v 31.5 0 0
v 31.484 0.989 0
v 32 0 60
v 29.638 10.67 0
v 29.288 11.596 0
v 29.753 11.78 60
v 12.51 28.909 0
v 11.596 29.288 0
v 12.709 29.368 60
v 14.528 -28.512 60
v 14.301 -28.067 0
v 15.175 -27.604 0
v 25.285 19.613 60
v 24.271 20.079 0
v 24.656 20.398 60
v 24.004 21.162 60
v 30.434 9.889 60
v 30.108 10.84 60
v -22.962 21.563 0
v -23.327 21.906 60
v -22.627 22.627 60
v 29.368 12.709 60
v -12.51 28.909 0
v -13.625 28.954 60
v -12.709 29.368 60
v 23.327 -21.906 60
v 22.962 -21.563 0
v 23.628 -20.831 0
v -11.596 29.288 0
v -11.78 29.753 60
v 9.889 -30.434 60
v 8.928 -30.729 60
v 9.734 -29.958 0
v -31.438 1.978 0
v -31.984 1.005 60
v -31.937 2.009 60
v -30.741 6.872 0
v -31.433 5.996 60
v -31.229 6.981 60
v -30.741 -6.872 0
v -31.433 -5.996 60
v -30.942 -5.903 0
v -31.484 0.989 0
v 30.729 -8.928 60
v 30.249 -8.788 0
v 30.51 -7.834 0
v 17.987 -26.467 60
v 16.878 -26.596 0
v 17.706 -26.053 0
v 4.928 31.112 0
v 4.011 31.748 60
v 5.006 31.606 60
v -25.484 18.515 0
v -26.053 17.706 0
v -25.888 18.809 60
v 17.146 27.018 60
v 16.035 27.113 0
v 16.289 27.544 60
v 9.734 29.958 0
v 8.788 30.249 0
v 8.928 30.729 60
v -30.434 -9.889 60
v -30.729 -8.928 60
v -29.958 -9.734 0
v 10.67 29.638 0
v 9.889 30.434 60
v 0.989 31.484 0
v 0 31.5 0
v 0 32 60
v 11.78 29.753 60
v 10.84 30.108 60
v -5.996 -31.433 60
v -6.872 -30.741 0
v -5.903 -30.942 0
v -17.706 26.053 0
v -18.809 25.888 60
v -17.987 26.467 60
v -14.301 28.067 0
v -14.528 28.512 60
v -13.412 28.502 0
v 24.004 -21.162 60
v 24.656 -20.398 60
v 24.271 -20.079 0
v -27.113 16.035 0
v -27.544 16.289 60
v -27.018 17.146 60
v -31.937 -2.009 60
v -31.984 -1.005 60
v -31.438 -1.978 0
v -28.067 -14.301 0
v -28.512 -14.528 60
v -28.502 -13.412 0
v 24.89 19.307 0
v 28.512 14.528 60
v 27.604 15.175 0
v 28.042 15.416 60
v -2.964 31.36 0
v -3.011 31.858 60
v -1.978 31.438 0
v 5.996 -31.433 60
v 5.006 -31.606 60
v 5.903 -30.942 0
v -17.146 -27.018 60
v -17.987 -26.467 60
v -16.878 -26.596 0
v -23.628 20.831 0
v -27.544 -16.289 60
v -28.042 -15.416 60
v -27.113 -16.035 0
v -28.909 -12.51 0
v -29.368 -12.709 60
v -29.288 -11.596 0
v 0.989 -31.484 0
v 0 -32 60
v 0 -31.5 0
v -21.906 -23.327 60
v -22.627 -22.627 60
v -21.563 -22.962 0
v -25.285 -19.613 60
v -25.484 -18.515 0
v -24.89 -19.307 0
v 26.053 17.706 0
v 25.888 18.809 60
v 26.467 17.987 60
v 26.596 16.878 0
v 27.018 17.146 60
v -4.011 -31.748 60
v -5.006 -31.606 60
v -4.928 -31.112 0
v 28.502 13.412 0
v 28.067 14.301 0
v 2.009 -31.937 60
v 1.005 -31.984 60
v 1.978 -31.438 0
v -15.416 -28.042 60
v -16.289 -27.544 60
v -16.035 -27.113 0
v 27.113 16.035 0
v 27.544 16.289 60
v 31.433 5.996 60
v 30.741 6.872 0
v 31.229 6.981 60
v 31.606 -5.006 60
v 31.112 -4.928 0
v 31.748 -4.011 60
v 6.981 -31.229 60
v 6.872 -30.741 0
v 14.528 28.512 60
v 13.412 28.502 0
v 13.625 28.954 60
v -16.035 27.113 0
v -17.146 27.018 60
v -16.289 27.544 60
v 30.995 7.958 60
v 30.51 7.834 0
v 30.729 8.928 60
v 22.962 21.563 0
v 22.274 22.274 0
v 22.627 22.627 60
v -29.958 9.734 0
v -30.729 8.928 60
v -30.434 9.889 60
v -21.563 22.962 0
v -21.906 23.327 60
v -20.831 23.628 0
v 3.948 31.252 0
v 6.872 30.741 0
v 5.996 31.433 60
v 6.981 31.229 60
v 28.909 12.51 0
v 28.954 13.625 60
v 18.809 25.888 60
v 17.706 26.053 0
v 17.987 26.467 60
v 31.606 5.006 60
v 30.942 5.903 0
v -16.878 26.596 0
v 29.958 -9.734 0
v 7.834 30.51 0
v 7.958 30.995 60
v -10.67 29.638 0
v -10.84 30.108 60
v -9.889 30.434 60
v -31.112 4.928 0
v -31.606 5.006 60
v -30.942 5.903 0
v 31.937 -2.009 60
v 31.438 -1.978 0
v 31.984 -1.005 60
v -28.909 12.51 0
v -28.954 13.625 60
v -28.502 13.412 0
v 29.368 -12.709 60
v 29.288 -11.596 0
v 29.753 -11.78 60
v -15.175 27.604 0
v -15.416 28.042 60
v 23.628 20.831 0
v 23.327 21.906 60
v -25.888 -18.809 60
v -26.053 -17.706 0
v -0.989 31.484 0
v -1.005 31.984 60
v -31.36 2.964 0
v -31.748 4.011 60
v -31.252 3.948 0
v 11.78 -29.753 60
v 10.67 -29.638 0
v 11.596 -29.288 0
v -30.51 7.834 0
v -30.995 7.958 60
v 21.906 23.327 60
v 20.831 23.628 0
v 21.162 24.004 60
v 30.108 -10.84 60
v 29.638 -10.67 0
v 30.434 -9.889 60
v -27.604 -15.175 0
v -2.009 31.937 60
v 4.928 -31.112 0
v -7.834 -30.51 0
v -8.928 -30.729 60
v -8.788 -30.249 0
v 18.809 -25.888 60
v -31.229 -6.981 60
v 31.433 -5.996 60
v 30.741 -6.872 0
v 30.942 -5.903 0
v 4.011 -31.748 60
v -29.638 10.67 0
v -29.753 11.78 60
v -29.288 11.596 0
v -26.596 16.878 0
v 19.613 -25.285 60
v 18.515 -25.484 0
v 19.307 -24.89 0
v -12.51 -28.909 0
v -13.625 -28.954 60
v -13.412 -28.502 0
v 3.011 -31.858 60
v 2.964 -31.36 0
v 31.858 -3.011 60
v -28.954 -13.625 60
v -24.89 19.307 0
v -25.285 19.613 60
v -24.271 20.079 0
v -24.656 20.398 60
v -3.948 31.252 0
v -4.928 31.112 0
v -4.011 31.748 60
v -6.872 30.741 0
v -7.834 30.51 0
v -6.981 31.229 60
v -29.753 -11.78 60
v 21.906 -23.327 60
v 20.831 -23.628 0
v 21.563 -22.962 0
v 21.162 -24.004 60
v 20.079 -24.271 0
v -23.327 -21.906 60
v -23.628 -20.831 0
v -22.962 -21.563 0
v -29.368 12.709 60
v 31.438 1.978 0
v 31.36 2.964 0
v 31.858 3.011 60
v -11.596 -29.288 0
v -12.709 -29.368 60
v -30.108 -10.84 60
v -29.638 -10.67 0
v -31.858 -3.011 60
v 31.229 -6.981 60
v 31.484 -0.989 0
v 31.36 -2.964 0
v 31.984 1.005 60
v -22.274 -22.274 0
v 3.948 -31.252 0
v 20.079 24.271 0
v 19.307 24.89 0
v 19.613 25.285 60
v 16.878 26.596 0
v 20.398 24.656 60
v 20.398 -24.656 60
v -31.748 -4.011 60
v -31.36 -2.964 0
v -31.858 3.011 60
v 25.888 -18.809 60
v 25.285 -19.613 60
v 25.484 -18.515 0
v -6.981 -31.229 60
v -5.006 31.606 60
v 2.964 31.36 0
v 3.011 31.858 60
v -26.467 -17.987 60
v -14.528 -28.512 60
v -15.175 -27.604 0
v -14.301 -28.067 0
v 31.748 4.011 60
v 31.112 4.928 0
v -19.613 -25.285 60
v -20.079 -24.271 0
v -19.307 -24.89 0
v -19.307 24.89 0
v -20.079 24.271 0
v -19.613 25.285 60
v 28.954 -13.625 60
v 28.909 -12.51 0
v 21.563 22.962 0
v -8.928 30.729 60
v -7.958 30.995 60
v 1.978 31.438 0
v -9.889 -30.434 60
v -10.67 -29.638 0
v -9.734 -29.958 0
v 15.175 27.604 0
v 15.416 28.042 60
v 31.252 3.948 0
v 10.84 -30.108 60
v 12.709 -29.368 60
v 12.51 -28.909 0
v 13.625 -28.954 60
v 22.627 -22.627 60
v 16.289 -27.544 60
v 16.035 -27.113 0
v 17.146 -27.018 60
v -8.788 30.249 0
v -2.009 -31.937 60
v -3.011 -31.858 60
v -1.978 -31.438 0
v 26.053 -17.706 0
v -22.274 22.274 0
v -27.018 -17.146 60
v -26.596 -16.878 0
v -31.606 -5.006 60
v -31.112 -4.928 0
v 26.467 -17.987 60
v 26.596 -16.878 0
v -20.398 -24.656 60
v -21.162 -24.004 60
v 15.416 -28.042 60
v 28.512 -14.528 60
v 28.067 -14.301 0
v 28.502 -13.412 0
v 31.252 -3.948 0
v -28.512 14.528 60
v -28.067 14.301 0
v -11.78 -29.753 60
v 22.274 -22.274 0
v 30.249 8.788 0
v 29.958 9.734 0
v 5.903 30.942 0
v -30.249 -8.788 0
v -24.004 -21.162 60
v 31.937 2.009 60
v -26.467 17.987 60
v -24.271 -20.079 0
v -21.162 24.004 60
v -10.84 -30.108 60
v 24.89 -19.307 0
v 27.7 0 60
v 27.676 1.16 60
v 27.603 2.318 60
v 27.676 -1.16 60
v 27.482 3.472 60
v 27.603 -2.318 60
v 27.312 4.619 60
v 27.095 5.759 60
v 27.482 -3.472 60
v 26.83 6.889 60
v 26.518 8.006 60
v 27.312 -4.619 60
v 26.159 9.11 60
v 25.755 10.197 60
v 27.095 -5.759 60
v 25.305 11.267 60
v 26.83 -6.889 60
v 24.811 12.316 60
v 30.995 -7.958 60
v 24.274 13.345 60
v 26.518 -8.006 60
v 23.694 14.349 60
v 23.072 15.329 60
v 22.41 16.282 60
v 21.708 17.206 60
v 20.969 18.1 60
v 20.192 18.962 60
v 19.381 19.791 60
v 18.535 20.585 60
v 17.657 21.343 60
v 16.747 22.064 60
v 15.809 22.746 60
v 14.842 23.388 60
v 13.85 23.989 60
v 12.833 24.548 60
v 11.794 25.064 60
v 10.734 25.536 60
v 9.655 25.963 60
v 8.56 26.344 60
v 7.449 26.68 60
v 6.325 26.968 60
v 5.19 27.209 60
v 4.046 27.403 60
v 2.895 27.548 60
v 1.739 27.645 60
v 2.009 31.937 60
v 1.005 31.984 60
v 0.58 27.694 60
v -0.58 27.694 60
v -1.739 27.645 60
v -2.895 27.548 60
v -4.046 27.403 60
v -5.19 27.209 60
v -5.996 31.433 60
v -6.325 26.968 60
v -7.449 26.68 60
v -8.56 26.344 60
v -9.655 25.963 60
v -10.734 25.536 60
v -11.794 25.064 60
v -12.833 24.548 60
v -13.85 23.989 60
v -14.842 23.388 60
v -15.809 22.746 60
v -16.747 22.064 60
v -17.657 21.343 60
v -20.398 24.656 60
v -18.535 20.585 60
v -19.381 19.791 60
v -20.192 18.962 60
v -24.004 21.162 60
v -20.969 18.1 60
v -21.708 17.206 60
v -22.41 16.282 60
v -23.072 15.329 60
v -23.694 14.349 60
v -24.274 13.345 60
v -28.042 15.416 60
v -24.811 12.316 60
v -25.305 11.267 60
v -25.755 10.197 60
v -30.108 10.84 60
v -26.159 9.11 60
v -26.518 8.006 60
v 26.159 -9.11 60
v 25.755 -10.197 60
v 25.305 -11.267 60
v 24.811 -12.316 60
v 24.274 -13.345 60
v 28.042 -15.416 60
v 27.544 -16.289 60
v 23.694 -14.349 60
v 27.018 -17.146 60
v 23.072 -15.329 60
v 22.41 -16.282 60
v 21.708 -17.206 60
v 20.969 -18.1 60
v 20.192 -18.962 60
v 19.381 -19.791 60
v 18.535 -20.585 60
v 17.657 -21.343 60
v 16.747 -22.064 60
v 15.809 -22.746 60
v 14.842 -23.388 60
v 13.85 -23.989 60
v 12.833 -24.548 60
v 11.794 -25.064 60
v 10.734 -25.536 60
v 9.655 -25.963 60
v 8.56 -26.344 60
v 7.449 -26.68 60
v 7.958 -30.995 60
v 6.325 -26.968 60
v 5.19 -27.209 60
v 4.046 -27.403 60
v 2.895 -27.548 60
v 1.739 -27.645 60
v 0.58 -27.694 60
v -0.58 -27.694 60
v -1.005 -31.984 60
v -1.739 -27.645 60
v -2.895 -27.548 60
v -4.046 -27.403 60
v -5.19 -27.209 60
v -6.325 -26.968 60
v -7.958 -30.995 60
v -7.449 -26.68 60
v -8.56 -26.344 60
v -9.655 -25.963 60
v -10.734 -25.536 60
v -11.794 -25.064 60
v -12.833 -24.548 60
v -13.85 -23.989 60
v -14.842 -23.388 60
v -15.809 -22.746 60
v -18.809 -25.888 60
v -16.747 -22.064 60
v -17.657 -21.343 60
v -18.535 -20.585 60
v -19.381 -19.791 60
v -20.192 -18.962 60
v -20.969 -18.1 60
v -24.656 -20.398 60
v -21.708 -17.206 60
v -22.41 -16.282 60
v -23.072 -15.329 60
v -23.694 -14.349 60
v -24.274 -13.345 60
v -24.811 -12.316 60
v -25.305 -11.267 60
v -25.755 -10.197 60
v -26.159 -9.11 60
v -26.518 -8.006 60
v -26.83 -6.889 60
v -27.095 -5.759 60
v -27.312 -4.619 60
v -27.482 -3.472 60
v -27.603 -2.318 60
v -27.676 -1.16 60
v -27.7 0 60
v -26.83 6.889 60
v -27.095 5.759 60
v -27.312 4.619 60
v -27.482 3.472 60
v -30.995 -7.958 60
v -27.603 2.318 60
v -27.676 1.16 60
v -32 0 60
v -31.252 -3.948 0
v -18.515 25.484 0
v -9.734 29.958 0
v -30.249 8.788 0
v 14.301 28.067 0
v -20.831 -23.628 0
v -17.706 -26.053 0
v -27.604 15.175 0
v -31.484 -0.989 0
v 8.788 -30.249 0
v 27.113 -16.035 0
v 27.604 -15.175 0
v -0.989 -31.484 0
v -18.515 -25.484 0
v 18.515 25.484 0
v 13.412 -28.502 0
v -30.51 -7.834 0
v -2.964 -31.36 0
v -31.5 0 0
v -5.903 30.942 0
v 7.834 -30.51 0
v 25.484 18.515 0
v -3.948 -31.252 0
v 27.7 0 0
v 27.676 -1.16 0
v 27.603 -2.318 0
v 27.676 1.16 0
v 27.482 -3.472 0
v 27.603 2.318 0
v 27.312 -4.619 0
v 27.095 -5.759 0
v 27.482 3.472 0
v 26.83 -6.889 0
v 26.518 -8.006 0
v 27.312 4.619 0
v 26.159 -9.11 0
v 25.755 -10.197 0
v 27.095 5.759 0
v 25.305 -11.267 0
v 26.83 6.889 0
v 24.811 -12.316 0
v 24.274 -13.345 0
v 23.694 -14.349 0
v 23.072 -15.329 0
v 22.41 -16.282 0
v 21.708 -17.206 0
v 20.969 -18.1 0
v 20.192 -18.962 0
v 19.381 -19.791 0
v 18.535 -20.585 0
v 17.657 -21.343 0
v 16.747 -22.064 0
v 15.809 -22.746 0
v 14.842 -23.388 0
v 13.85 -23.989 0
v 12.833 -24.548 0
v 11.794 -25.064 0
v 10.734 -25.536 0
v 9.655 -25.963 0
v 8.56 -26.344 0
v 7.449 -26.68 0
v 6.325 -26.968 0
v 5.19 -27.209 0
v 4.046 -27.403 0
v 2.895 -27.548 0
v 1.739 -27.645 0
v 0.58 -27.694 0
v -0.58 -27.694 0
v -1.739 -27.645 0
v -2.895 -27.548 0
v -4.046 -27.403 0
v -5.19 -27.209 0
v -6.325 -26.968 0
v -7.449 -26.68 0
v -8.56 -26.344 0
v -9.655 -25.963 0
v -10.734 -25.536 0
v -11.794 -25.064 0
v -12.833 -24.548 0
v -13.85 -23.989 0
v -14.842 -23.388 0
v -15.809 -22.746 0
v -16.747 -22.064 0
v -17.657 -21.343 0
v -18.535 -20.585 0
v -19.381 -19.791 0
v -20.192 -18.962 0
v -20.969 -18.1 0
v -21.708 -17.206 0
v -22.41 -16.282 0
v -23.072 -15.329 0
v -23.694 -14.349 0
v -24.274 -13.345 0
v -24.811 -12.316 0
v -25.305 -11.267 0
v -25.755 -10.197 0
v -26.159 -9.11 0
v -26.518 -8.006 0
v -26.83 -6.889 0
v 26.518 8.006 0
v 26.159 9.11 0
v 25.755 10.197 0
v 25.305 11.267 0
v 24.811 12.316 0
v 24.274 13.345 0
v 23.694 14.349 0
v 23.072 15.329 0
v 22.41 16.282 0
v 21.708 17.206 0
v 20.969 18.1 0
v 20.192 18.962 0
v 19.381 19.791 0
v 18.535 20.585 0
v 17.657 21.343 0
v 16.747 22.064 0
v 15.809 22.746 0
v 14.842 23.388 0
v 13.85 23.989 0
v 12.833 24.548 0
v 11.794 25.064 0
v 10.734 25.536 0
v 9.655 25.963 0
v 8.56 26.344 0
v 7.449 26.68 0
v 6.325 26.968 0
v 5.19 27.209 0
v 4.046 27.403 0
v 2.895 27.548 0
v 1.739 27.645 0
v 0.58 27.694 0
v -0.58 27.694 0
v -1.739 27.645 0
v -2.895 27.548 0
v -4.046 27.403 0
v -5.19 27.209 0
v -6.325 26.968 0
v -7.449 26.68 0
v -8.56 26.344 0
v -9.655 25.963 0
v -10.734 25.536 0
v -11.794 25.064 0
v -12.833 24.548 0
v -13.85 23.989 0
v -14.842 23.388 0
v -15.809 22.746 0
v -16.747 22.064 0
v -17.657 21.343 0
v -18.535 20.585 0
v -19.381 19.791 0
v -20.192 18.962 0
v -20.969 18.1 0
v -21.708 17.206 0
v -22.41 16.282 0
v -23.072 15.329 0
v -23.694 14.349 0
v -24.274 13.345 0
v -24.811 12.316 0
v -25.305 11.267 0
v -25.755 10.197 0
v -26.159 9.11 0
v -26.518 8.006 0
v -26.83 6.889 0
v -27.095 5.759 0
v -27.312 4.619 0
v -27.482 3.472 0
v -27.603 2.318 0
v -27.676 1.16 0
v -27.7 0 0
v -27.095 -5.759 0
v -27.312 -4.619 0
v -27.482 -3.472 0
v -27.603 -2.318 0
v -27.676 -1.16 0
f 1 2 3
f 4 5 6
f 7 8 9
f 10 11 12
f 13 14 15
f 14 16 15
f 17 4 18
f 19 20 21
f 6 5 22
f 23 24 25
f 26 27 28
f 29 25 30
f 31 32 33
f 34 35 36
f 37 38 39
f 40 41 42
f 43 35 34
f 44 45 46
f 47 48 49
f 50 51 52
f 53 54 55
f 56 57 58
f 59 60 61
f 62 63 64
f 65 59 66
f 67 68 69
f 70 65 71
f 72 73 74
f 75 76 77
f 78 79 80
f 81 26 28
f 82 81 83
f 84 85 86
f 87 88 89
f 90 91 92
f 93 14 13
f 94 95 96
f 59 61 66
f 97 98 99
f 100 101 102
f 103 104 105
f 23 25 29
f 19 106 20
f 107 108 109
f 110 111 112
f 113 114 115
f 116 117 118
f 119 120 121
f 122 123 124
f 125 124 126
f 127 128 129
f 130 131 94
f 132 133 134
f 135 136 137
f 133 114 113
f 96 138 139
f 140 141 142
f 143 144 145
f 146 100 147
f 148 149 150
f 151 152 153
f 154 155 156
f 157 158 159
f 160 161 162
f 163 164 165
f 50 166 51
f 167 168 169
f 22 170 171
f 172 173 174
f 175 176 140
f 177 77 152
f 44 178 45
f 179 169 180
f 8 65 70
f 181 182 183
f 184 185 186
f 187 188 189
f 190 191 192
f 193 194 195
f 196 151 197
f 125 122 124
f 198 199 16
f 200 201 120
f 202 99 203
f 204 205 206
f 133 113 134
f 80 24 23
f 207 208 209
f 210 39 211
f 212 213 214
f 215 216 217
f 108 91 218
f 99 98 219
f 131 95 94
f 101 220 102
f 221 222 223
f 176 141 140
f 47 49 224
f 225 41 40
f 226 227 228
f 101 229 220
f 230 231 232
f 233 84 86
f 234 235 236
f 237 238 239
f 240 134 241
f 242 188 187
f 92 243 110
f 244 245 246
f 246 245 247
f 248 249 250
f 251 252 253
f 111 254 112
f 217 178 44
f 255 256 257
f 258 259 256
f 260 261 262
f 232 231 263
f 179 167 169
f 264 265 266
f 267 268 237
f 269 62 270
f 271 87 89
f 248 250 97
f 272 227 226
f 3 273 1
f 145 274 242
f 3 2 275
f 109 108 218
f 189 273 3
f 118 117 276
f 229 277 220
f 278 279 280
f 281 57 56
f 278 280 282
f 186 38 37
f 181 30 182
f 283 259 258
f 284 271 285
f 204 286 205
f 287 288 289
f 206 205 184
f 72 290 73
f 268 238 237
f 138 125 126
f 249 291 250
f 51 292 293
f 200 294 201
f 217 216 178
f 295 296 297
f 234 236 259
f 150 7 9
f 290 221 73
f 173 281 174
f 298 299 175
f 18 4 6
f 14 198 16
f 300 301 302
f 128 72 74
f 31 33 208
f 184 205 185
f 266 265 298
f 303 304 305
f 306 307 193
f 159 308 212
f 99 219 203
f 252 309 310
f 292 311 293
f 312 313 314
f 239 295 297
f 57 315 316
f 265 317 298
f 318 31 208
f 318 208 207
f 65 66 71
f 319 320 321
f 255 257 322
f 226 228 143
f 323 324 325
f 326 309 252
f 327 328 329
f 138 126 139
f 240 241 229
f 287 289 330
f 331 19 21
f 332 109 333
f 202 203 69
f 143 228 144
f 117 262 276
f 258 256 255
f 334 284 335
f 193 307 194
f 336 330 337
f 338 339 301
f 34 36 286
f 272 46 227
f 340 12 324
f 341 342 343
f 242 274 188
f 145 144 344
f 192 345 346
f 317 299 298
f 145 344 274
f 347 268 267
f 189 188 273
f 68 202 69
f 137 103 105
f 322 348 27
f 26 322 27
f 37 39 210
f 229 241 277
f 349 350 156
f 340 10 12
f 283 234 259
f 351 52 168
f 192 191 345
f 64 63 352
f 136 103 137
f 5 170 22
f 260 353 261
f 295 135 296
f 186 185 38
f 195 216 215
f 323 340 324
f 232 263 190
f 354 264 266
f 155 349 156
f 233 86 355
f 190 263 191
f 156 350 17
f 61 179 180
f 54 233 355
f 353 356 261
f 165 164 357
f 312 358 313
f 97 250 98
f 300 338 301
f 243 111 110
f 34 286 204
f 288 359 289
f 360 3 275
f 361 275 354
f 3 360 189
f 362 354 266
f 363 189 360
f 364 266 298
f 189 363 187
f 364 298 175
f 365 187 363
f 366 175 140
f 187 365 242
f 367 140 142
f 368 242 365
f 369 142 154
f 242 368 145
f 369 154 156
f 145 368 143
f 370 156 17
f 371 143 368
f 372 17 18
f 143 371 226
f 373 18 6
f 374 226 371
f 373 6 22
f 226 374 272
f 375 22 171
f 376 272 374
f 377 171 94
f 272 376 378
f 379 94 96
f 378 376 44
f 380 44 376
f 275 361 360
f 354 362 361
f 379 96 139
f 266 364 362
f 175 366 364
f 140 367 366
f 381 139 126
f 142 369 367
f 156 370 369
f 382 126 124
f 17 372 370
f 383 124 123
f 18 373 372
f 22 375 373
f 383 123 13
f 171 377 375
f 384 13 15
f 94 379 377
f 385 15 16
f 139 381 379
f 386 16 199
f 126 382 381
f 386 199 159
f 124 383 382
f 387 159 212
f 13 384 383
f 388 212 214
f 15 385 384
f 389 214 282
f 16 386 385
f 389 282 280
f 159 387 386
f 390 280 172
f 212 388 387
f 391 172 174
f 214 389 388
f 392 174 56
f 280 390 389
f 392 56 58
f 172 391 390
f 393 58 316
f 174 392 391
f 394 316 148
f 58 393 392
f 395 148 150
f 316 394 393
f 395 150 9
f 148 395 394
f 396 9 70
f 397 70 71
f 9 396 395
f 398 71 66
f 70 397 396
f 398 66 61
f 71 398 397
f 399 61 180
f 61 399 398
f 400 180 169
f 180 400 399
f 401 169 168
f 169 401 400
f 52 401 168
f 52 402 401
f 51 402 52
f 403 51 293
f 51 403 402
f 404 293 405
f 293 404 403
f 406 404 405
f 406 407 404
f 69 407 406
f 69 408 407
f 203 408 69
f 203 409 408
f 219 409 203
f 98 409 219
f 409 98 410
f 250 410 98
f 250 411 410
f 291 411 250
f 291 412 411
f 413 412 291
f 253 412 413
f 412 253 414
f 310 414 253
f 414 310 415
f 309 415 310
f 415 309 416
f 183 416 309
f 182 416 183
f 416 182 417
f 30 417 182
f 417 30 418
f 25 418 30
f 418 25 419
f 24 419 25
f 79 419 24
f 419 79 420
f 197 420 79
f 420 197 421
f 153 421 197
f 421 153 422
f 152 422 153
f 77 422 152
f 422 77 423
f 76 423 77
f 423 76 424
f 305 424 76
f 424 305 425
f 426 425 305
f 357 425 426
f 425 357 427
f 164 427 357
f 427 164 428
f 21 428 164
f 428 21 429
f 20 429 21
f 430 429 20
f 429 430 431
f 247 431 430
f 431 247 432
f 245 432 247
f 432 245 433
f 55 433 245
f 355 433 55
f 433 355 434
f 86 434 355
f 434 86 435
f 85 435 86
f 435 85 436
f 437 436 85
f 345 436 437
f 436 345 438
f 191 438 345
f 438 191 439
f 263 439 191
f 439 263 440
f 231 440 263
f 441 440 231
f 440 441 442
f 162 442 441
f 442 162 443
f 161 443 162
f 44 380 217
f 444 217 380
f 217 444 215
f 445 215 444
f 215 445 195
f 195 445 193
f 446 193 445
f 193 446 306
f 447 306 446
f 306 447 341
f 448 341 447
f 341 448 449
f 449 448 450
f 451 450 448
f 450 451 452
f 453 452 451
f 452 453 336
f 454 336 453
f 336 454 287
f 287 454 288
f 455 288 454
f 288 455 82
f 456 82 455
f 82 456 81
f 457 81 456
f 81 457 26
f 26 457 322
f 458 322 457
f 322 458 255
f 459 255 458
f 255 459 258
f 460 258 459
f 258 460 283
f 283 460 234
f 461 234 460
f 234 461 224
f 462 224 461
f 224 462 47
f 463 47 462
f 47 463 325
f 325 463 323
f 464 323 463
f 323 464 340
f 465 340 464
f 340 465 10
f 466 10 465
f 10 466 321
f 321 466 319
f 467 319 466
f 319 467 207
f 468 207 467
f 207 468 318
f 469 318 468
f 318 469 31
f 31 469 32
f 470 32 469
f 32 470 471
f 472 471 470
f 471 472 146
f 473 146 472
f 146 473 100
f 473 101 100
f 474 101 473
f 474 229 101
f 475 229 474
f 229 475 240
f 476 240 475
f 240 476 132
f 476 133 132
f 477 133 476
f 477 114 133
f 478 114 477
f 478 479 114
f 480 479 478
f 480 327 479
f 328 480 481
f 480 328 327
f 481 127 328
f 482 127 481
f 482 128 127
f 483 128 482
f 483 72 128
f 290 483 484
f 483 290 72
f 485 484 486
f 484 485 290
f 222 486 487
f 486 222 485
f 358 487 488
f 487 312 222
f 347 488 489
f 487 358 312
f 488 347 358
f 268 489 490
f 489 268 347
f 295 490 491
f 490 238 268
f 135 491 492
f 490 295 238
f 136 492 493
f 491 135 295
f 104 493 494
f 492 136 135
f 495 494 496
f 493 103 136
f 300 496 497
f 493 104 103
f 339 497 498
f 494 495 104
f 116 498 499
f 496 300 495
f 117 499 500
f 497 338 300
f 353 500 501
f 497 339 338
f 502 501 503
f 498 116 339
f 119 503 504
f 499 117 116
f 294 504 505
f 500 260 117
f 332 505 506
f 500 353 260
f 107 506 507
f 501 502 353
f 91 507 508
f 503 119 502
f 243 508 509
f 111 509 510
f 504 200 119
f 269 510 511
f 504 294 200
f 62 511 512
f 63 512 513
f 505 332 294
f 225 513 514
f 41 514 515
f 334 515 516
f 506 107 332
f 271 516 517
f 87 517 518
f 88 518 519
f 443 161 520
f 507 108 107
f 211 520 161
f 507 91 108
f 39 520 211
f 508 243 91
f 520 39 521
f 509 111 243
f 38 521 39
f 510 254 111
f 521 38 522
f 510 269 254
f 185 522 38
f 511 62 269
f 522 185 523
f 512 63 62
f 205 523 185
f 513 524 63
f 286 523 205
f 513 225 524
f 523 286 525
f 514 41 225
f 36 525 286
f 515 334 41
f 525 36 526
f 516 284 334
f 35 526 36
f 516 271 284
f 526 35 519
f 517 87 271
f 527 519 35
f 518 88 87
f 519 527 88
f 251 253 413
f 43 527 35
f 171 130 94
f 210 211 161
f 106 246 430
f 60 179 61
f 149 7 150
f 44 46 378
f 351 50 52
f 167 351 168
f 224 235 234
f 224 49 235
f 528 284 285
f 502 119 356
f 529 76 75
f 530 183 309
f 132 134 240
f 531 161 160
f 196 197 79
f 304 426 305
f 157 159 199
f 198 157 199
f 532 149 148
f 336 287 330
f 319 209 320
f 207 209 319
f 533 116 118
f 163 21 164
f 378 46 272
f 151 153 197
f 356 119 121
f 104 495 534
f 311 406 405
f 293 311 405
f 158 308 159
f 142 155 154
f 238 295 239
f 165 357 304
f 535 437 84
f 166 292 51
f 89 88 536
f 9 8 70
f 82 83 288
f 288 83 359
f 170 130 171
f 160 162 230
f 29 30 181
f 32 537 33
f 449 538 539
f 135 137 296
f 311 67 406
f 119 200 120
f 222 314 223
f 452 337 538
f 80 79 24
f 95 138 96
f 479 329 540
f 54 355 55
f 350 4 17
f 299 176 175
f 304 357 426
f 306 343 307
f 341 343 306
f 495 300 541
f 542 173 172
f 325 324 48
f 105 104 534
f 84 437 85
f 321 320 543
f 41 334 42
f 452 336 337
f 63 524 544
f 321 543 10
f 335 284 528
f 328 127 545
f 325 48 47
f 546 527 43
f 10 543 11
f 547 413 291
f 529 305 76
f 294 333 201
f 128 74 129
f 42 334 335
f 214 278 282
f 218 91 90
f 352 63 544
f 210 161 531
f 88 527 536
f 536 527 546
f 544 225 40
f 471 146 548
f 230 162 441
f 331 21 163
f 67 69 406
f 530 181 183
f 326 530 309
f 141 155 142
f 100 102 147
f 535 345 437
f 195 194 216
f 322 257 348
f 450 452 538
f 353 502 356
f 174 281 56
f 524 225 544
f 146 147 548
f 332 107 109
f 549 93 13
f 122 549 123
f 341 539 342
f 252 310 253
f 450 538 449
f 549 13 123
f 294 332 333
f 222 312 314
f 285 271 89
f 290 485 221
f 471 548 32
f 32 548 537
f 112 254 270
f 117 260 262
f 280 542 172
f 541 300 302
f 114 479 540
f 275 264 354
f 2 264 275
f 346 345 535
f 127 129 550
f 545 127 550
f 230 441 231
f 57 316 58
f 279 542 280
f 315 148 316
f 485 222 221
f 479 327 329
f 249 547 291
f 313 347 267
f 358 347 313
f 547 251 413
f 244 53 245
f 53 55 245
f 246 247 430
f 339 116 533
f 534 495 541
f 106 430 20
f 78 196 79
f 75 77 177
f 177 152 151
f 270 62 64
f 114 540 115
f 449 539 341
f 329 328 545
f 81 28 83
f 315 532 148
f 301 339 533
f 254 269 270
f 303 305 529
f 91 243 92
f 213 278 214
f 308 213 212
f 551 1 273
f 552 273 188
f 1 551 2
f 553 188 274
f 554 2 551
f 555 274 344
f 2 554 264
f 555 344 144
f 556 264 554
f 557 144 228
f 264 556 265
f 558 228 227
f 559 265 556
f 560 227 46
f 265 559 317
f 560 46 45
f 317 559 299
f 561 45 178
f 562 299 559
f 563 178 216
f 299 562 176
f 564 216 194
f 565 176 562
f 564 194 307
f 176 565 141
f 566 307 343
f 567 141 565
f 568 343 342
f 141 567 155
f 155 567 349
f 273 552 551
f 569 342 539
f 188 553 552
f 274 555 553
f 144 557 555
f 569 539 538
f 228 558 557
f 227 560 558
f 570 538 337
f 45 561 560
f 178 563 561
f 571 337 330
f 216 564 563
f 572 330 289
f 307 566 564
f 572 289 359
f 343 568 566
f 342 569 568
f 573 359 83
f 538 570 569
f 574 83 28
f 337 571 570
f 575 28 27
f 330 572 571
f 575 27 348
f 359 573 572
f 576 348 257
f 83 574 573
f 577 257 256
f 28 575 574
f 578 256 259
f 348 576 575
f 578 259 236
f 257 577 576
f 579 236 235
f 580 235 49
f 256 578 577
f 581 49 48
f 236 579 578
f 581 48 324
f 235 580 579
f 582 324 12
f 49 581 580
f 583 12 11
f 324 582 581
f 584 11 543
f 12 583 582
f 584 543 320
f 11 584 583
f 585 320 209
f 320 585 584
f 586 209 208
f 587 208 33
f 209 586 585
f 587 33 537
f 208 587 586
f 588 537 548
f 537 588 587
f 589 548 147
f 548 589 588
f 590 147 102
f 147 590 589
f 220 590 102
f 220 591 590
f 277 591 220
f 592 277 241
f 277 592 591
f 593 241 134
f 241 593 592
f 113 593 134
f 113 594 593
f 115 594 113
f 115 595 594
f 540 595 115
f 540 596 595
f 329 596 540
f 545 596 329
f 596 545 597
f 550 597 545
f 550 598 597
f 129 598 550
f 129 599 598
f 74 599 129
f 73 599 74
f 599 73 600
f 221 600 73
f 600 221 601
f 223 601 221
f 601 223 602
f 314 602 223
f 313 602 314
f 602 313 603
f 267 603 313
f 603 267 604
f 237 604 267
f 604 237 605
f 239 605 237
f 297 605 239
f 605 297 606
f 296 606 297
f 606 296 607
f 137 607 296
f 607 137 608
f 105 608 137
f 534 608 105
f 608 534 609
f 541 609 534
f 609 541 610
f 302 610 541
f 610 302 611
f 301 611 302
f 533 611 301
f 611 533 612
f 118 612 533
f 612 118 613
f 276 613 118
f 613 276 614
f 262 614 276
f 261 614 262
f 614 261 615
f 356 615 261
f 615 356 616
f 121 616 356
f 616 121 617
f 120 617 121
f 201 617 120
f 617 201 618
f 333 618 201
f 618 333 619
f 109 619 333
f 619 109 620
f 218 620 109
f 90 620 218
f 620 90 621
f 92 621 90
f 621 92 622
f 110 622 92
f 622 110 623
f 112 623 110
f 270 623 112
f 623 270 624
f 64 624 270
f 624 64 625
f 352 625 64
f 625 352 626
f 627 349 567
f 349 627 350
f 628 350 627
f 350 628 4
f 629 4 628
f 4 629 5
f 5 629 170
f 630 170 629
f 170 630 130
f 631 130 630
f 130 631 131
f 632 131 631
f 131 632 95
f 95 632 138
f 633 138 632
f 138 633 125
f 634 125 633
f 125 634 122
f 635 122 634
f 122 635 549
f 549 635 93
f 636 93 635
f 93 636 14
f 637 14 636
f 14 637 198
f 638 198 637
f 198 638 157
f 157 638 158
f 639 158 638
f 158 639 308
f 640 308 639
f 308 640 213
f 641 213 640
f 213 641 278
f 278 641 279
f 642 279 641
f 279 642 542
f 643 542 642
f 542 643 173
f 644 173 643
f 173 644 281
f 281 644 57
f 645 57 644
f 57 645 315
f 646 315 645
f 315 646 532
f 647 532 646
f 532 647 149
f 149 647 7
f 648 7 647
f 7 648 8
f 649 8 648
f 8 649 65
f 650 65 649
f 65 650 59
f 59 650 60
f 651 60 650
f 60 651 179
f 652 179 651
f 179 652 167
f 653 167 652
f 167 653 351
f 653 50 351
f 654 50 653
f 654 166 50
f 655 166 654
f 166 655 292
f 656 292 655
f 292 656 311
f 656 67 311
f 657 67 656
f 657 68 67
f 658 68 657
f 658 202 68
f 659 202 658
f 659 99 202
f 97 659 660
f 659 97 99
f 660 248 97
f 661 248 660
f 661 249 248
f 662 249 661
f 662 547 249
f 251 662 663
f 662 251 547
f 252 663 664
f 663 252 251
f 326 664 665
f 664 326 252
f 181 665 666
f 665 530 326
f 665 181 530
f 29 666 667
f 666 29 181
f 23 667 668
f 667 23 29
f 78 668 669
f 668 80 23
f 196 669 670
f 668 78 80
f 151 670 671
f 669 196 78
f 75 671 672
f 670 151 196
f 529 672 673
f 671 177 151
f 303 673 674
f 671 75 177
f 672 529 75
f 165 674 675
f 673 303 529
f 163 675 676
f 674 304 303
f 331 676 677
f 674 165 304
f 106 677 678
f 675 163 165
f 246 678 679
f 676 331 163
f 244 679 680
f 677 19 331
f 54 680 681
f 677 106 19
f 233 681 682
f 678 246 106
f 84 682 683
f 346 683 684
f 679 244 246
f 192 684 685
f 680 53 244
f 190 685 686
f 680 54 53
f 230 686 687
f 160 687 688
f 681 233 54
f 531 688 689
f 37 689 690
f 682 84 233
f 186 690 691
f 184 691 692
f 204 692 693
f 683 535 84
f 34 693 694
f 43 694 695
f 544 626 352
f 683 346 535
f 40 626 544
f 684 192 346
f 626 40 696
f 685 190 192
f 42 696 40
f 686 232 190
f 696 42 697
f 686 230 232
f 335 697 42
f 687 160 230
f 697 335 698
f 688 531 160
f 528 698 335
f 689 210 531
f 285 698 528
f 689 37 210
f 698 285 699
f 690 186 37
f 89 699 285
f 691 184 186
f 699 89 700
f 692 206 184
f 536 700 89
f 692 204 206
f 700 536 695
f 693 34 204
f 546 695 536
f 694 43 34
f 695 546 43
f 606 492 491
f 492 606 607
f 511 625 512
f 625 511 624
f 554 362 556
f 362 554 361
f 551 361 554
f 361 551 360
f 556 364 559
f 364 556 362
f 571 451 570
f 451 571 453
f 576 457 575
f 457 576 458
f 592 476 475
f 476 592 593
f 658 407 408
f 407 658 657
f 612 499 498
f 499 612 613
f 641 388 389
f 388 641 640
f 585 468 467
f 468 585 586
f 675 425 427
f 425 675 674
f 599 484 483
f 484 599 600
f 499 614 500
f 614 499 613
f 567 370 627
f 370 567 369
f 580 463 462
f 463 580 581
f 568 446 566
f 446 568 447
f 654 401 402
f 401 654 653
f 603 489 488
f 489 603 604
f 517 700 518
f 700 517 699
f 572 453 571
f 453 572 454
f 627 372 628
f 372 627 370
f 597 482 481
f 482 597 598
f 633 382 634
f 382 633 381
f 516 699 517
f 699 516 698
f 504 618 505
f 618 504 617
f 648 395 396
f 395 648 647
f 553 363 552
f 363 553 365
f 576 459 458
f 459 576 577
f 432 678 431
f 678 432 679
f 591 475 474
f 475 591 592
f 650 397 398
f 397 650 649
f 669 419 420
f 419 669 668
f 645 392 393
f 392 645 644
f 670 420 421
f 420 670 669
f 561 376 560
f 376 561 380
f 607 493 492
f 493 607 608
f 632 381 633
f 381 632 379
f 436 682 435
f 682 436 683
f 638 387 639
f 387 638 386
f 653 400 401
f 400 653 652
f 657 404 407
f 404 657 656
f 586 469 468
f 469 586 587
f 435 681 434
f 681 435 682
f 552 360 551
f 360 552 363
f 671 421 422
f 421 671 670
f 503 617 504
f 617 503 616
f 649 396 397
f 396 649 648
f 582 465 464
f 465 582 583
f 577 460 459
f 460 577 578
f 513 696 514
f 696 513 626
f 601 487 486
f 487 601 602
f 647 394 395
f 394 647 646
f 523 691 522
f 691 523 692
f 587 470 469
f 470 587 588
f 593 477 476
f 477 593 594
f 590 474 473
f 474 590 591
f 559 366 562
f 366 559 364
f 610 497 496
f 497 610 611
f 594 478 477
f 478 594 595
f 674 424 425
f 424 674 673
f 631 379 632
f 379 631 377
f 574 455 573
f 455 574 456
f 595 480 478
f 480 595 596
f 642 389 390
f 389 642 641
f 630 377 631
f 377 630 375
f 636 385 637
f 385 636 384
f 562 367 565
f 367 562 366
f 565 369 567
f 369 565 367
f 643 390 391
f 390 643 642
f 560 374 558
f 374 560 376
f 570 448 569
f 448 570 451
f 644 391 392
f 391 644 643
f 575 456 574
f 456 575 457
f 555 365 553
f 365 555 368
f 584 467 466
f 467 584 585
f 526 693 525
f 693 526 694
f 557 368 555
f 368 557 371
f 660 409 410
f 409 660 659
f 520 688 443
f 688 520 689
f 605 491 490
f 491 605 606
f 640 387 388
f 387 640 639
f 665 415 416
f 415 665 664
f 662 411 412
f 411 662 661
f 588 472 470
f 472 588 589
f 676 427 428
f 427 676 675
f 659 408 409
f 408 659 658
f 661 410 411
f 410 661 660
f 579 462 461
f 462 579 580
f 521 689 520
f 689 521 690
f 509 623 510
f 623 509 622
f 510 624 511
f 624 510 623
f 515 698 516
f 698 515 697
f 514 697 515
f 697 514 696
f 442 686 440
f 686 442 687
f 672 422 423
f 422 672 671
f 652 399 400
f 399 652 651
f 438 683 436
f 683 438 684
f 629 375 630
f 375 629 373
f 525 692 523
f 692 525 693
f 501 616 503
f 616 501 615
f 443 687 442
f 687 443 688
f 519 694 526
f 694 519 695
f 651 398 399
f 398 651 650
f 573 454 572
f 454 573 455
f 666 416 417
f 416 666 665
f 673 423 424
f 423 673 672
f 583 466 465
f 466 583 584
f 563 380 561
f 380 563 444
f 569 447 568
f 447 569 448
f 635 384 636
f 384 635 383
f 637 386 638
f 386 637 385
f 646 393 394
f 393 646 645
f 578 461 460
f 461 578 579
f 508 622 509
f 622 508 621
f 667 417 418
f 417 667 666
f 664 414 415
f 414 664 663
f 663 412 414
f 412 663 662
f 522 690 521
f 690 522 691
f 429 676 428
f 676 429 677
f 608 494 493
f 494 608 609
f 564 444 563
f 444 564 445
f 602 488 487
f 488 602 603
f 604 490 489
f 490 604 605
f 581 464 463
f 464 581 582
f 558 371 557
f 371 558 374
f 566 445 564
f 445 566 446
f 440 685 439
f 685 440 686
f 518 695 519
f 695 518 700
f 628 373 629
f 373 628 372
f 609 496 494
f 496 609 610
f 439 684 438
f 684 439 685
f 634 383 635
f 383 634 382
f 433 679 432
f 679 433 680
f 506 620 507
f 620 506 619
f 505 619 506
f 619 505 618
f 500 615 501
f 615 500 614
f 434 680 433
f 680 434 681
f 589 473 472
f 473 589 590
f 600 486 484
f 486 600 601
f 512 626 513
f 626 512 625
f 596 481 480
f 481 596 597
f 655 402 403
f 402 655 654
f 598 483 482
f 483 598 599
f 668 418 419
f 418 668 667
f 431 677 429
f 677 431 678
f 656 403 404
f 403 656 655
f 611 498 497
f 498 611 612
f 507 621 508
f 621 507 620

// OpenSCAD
// file: ../utils/spool_core_sleeve.scad
/*
//--------------------------------------------------------------
//  Core‑Sleeve Spool Adapter  ✧  v1.1  (CC0‑1.0 / public domain)
//  Library module for parametric spool-core sleeves.
//  Example usage:
//      use <../utils/spool_core_sleeve.scad>;
//      spool_core_sleeve(inner_id=55, target_od=63, target_od_end=64,
//                        length=60, clearance=0.20);
//
//  Parameters:
//    inner_id   — measured bore ID (mm), e.g. 55 (≈AMS axle)
//    target_od      — outer diameter at z=0 (mm), e.g. 63 (Sunlu spool)
//    target_od_end  — outer diameter at z=length (mm); defaults to target_od
//    length         — axial length (mm), e.g. 60
//    clearance  — extra diameter added to bore (total), default 0.20
//    $fn_outer  — circle resolution for outer cylinder
//    $fn_inner  — circle resolution for inner bore
//
//  Notes:
//  • "clearance" is applied to the *diameter* of the bore (2× radial).
//  • Echoes computed wall thickness so test scripts can sanity-check values.
//--------------------------------------------------------------
*/

module spool_core_sleeve(
    inner_id      = 55,
    target_od     = 63,
    target_od_end = undef,
    length        = 60,
    clearance     = 0.20,
    $fn_outer     = 200,
    $fn_inner     = 150
) {
    target_od_end = is_undef(target_od_end) ? target_od : target_od_end;

    // Basic parameter validation
    assert(
        min(target_od, target_od_end) > inner_id + 2 * clearance,
        str("invalid dims: outer diameters (", target_od, ", ", target_od_end,
            ") must exceed inner_id + 2*clearance (",
            inner_id + 2 * clearance, ")")
    );

    wall_start = (target_od - inner_id) / 2;
    wall_end   = (target_od_end - inner_id) / 2;
    echo(str("Radial wall thickness: ", wall_start, " mm -> ",
             wall_end, " mm"));

    difference() {
        // OUTER – linearly interpolate between diameters
        cylinder(d1 = target_od, d2 = target_od_end, h = length, $fn = $fn_outer);
        // BORE — extended ±1mm to avoid z-fusing
        translate([0, 0, -1])
            cylinder(
                d = inner_id + 2 * clearance, h = length + 2, $fn = $fn_inner
            );
    }
}

// Optional named presets (extend as you collect measurements)
function _spool_core_sleeve_preset(preset) =
    (preset == "sunlu55_to63_len60") ? [55, 63, 64, 60, 0.20] :
    (preset == "sunlu55_to63cyl_len60") ? [55, 63, 63, 60, 0.20] :
    undef;

module spool_core_sleeve_preset(
    preset = "sunlu55_to63_len60", $fn_outer = 200, $fn_inner = 150
) {
    p = _spool_core_sleeve_preset(preset);
    assert(p != undef, str("unknown preset: ", preset));
    spool_core_sleeve(
        inner_id      = p[0],
        target_od     = p[1],
        target_od_end = p[2],
        length        = p[3],
        clearance     = p[4],
        $fn_outer     = $fn_outer,
        $fn_inner     = $fn_inner
    );
}

// End of library
// main file
use <../utils/spool_core_sleeve.scad>;

spool_core_sleeve_preset("sunlu55_to63_len60");
